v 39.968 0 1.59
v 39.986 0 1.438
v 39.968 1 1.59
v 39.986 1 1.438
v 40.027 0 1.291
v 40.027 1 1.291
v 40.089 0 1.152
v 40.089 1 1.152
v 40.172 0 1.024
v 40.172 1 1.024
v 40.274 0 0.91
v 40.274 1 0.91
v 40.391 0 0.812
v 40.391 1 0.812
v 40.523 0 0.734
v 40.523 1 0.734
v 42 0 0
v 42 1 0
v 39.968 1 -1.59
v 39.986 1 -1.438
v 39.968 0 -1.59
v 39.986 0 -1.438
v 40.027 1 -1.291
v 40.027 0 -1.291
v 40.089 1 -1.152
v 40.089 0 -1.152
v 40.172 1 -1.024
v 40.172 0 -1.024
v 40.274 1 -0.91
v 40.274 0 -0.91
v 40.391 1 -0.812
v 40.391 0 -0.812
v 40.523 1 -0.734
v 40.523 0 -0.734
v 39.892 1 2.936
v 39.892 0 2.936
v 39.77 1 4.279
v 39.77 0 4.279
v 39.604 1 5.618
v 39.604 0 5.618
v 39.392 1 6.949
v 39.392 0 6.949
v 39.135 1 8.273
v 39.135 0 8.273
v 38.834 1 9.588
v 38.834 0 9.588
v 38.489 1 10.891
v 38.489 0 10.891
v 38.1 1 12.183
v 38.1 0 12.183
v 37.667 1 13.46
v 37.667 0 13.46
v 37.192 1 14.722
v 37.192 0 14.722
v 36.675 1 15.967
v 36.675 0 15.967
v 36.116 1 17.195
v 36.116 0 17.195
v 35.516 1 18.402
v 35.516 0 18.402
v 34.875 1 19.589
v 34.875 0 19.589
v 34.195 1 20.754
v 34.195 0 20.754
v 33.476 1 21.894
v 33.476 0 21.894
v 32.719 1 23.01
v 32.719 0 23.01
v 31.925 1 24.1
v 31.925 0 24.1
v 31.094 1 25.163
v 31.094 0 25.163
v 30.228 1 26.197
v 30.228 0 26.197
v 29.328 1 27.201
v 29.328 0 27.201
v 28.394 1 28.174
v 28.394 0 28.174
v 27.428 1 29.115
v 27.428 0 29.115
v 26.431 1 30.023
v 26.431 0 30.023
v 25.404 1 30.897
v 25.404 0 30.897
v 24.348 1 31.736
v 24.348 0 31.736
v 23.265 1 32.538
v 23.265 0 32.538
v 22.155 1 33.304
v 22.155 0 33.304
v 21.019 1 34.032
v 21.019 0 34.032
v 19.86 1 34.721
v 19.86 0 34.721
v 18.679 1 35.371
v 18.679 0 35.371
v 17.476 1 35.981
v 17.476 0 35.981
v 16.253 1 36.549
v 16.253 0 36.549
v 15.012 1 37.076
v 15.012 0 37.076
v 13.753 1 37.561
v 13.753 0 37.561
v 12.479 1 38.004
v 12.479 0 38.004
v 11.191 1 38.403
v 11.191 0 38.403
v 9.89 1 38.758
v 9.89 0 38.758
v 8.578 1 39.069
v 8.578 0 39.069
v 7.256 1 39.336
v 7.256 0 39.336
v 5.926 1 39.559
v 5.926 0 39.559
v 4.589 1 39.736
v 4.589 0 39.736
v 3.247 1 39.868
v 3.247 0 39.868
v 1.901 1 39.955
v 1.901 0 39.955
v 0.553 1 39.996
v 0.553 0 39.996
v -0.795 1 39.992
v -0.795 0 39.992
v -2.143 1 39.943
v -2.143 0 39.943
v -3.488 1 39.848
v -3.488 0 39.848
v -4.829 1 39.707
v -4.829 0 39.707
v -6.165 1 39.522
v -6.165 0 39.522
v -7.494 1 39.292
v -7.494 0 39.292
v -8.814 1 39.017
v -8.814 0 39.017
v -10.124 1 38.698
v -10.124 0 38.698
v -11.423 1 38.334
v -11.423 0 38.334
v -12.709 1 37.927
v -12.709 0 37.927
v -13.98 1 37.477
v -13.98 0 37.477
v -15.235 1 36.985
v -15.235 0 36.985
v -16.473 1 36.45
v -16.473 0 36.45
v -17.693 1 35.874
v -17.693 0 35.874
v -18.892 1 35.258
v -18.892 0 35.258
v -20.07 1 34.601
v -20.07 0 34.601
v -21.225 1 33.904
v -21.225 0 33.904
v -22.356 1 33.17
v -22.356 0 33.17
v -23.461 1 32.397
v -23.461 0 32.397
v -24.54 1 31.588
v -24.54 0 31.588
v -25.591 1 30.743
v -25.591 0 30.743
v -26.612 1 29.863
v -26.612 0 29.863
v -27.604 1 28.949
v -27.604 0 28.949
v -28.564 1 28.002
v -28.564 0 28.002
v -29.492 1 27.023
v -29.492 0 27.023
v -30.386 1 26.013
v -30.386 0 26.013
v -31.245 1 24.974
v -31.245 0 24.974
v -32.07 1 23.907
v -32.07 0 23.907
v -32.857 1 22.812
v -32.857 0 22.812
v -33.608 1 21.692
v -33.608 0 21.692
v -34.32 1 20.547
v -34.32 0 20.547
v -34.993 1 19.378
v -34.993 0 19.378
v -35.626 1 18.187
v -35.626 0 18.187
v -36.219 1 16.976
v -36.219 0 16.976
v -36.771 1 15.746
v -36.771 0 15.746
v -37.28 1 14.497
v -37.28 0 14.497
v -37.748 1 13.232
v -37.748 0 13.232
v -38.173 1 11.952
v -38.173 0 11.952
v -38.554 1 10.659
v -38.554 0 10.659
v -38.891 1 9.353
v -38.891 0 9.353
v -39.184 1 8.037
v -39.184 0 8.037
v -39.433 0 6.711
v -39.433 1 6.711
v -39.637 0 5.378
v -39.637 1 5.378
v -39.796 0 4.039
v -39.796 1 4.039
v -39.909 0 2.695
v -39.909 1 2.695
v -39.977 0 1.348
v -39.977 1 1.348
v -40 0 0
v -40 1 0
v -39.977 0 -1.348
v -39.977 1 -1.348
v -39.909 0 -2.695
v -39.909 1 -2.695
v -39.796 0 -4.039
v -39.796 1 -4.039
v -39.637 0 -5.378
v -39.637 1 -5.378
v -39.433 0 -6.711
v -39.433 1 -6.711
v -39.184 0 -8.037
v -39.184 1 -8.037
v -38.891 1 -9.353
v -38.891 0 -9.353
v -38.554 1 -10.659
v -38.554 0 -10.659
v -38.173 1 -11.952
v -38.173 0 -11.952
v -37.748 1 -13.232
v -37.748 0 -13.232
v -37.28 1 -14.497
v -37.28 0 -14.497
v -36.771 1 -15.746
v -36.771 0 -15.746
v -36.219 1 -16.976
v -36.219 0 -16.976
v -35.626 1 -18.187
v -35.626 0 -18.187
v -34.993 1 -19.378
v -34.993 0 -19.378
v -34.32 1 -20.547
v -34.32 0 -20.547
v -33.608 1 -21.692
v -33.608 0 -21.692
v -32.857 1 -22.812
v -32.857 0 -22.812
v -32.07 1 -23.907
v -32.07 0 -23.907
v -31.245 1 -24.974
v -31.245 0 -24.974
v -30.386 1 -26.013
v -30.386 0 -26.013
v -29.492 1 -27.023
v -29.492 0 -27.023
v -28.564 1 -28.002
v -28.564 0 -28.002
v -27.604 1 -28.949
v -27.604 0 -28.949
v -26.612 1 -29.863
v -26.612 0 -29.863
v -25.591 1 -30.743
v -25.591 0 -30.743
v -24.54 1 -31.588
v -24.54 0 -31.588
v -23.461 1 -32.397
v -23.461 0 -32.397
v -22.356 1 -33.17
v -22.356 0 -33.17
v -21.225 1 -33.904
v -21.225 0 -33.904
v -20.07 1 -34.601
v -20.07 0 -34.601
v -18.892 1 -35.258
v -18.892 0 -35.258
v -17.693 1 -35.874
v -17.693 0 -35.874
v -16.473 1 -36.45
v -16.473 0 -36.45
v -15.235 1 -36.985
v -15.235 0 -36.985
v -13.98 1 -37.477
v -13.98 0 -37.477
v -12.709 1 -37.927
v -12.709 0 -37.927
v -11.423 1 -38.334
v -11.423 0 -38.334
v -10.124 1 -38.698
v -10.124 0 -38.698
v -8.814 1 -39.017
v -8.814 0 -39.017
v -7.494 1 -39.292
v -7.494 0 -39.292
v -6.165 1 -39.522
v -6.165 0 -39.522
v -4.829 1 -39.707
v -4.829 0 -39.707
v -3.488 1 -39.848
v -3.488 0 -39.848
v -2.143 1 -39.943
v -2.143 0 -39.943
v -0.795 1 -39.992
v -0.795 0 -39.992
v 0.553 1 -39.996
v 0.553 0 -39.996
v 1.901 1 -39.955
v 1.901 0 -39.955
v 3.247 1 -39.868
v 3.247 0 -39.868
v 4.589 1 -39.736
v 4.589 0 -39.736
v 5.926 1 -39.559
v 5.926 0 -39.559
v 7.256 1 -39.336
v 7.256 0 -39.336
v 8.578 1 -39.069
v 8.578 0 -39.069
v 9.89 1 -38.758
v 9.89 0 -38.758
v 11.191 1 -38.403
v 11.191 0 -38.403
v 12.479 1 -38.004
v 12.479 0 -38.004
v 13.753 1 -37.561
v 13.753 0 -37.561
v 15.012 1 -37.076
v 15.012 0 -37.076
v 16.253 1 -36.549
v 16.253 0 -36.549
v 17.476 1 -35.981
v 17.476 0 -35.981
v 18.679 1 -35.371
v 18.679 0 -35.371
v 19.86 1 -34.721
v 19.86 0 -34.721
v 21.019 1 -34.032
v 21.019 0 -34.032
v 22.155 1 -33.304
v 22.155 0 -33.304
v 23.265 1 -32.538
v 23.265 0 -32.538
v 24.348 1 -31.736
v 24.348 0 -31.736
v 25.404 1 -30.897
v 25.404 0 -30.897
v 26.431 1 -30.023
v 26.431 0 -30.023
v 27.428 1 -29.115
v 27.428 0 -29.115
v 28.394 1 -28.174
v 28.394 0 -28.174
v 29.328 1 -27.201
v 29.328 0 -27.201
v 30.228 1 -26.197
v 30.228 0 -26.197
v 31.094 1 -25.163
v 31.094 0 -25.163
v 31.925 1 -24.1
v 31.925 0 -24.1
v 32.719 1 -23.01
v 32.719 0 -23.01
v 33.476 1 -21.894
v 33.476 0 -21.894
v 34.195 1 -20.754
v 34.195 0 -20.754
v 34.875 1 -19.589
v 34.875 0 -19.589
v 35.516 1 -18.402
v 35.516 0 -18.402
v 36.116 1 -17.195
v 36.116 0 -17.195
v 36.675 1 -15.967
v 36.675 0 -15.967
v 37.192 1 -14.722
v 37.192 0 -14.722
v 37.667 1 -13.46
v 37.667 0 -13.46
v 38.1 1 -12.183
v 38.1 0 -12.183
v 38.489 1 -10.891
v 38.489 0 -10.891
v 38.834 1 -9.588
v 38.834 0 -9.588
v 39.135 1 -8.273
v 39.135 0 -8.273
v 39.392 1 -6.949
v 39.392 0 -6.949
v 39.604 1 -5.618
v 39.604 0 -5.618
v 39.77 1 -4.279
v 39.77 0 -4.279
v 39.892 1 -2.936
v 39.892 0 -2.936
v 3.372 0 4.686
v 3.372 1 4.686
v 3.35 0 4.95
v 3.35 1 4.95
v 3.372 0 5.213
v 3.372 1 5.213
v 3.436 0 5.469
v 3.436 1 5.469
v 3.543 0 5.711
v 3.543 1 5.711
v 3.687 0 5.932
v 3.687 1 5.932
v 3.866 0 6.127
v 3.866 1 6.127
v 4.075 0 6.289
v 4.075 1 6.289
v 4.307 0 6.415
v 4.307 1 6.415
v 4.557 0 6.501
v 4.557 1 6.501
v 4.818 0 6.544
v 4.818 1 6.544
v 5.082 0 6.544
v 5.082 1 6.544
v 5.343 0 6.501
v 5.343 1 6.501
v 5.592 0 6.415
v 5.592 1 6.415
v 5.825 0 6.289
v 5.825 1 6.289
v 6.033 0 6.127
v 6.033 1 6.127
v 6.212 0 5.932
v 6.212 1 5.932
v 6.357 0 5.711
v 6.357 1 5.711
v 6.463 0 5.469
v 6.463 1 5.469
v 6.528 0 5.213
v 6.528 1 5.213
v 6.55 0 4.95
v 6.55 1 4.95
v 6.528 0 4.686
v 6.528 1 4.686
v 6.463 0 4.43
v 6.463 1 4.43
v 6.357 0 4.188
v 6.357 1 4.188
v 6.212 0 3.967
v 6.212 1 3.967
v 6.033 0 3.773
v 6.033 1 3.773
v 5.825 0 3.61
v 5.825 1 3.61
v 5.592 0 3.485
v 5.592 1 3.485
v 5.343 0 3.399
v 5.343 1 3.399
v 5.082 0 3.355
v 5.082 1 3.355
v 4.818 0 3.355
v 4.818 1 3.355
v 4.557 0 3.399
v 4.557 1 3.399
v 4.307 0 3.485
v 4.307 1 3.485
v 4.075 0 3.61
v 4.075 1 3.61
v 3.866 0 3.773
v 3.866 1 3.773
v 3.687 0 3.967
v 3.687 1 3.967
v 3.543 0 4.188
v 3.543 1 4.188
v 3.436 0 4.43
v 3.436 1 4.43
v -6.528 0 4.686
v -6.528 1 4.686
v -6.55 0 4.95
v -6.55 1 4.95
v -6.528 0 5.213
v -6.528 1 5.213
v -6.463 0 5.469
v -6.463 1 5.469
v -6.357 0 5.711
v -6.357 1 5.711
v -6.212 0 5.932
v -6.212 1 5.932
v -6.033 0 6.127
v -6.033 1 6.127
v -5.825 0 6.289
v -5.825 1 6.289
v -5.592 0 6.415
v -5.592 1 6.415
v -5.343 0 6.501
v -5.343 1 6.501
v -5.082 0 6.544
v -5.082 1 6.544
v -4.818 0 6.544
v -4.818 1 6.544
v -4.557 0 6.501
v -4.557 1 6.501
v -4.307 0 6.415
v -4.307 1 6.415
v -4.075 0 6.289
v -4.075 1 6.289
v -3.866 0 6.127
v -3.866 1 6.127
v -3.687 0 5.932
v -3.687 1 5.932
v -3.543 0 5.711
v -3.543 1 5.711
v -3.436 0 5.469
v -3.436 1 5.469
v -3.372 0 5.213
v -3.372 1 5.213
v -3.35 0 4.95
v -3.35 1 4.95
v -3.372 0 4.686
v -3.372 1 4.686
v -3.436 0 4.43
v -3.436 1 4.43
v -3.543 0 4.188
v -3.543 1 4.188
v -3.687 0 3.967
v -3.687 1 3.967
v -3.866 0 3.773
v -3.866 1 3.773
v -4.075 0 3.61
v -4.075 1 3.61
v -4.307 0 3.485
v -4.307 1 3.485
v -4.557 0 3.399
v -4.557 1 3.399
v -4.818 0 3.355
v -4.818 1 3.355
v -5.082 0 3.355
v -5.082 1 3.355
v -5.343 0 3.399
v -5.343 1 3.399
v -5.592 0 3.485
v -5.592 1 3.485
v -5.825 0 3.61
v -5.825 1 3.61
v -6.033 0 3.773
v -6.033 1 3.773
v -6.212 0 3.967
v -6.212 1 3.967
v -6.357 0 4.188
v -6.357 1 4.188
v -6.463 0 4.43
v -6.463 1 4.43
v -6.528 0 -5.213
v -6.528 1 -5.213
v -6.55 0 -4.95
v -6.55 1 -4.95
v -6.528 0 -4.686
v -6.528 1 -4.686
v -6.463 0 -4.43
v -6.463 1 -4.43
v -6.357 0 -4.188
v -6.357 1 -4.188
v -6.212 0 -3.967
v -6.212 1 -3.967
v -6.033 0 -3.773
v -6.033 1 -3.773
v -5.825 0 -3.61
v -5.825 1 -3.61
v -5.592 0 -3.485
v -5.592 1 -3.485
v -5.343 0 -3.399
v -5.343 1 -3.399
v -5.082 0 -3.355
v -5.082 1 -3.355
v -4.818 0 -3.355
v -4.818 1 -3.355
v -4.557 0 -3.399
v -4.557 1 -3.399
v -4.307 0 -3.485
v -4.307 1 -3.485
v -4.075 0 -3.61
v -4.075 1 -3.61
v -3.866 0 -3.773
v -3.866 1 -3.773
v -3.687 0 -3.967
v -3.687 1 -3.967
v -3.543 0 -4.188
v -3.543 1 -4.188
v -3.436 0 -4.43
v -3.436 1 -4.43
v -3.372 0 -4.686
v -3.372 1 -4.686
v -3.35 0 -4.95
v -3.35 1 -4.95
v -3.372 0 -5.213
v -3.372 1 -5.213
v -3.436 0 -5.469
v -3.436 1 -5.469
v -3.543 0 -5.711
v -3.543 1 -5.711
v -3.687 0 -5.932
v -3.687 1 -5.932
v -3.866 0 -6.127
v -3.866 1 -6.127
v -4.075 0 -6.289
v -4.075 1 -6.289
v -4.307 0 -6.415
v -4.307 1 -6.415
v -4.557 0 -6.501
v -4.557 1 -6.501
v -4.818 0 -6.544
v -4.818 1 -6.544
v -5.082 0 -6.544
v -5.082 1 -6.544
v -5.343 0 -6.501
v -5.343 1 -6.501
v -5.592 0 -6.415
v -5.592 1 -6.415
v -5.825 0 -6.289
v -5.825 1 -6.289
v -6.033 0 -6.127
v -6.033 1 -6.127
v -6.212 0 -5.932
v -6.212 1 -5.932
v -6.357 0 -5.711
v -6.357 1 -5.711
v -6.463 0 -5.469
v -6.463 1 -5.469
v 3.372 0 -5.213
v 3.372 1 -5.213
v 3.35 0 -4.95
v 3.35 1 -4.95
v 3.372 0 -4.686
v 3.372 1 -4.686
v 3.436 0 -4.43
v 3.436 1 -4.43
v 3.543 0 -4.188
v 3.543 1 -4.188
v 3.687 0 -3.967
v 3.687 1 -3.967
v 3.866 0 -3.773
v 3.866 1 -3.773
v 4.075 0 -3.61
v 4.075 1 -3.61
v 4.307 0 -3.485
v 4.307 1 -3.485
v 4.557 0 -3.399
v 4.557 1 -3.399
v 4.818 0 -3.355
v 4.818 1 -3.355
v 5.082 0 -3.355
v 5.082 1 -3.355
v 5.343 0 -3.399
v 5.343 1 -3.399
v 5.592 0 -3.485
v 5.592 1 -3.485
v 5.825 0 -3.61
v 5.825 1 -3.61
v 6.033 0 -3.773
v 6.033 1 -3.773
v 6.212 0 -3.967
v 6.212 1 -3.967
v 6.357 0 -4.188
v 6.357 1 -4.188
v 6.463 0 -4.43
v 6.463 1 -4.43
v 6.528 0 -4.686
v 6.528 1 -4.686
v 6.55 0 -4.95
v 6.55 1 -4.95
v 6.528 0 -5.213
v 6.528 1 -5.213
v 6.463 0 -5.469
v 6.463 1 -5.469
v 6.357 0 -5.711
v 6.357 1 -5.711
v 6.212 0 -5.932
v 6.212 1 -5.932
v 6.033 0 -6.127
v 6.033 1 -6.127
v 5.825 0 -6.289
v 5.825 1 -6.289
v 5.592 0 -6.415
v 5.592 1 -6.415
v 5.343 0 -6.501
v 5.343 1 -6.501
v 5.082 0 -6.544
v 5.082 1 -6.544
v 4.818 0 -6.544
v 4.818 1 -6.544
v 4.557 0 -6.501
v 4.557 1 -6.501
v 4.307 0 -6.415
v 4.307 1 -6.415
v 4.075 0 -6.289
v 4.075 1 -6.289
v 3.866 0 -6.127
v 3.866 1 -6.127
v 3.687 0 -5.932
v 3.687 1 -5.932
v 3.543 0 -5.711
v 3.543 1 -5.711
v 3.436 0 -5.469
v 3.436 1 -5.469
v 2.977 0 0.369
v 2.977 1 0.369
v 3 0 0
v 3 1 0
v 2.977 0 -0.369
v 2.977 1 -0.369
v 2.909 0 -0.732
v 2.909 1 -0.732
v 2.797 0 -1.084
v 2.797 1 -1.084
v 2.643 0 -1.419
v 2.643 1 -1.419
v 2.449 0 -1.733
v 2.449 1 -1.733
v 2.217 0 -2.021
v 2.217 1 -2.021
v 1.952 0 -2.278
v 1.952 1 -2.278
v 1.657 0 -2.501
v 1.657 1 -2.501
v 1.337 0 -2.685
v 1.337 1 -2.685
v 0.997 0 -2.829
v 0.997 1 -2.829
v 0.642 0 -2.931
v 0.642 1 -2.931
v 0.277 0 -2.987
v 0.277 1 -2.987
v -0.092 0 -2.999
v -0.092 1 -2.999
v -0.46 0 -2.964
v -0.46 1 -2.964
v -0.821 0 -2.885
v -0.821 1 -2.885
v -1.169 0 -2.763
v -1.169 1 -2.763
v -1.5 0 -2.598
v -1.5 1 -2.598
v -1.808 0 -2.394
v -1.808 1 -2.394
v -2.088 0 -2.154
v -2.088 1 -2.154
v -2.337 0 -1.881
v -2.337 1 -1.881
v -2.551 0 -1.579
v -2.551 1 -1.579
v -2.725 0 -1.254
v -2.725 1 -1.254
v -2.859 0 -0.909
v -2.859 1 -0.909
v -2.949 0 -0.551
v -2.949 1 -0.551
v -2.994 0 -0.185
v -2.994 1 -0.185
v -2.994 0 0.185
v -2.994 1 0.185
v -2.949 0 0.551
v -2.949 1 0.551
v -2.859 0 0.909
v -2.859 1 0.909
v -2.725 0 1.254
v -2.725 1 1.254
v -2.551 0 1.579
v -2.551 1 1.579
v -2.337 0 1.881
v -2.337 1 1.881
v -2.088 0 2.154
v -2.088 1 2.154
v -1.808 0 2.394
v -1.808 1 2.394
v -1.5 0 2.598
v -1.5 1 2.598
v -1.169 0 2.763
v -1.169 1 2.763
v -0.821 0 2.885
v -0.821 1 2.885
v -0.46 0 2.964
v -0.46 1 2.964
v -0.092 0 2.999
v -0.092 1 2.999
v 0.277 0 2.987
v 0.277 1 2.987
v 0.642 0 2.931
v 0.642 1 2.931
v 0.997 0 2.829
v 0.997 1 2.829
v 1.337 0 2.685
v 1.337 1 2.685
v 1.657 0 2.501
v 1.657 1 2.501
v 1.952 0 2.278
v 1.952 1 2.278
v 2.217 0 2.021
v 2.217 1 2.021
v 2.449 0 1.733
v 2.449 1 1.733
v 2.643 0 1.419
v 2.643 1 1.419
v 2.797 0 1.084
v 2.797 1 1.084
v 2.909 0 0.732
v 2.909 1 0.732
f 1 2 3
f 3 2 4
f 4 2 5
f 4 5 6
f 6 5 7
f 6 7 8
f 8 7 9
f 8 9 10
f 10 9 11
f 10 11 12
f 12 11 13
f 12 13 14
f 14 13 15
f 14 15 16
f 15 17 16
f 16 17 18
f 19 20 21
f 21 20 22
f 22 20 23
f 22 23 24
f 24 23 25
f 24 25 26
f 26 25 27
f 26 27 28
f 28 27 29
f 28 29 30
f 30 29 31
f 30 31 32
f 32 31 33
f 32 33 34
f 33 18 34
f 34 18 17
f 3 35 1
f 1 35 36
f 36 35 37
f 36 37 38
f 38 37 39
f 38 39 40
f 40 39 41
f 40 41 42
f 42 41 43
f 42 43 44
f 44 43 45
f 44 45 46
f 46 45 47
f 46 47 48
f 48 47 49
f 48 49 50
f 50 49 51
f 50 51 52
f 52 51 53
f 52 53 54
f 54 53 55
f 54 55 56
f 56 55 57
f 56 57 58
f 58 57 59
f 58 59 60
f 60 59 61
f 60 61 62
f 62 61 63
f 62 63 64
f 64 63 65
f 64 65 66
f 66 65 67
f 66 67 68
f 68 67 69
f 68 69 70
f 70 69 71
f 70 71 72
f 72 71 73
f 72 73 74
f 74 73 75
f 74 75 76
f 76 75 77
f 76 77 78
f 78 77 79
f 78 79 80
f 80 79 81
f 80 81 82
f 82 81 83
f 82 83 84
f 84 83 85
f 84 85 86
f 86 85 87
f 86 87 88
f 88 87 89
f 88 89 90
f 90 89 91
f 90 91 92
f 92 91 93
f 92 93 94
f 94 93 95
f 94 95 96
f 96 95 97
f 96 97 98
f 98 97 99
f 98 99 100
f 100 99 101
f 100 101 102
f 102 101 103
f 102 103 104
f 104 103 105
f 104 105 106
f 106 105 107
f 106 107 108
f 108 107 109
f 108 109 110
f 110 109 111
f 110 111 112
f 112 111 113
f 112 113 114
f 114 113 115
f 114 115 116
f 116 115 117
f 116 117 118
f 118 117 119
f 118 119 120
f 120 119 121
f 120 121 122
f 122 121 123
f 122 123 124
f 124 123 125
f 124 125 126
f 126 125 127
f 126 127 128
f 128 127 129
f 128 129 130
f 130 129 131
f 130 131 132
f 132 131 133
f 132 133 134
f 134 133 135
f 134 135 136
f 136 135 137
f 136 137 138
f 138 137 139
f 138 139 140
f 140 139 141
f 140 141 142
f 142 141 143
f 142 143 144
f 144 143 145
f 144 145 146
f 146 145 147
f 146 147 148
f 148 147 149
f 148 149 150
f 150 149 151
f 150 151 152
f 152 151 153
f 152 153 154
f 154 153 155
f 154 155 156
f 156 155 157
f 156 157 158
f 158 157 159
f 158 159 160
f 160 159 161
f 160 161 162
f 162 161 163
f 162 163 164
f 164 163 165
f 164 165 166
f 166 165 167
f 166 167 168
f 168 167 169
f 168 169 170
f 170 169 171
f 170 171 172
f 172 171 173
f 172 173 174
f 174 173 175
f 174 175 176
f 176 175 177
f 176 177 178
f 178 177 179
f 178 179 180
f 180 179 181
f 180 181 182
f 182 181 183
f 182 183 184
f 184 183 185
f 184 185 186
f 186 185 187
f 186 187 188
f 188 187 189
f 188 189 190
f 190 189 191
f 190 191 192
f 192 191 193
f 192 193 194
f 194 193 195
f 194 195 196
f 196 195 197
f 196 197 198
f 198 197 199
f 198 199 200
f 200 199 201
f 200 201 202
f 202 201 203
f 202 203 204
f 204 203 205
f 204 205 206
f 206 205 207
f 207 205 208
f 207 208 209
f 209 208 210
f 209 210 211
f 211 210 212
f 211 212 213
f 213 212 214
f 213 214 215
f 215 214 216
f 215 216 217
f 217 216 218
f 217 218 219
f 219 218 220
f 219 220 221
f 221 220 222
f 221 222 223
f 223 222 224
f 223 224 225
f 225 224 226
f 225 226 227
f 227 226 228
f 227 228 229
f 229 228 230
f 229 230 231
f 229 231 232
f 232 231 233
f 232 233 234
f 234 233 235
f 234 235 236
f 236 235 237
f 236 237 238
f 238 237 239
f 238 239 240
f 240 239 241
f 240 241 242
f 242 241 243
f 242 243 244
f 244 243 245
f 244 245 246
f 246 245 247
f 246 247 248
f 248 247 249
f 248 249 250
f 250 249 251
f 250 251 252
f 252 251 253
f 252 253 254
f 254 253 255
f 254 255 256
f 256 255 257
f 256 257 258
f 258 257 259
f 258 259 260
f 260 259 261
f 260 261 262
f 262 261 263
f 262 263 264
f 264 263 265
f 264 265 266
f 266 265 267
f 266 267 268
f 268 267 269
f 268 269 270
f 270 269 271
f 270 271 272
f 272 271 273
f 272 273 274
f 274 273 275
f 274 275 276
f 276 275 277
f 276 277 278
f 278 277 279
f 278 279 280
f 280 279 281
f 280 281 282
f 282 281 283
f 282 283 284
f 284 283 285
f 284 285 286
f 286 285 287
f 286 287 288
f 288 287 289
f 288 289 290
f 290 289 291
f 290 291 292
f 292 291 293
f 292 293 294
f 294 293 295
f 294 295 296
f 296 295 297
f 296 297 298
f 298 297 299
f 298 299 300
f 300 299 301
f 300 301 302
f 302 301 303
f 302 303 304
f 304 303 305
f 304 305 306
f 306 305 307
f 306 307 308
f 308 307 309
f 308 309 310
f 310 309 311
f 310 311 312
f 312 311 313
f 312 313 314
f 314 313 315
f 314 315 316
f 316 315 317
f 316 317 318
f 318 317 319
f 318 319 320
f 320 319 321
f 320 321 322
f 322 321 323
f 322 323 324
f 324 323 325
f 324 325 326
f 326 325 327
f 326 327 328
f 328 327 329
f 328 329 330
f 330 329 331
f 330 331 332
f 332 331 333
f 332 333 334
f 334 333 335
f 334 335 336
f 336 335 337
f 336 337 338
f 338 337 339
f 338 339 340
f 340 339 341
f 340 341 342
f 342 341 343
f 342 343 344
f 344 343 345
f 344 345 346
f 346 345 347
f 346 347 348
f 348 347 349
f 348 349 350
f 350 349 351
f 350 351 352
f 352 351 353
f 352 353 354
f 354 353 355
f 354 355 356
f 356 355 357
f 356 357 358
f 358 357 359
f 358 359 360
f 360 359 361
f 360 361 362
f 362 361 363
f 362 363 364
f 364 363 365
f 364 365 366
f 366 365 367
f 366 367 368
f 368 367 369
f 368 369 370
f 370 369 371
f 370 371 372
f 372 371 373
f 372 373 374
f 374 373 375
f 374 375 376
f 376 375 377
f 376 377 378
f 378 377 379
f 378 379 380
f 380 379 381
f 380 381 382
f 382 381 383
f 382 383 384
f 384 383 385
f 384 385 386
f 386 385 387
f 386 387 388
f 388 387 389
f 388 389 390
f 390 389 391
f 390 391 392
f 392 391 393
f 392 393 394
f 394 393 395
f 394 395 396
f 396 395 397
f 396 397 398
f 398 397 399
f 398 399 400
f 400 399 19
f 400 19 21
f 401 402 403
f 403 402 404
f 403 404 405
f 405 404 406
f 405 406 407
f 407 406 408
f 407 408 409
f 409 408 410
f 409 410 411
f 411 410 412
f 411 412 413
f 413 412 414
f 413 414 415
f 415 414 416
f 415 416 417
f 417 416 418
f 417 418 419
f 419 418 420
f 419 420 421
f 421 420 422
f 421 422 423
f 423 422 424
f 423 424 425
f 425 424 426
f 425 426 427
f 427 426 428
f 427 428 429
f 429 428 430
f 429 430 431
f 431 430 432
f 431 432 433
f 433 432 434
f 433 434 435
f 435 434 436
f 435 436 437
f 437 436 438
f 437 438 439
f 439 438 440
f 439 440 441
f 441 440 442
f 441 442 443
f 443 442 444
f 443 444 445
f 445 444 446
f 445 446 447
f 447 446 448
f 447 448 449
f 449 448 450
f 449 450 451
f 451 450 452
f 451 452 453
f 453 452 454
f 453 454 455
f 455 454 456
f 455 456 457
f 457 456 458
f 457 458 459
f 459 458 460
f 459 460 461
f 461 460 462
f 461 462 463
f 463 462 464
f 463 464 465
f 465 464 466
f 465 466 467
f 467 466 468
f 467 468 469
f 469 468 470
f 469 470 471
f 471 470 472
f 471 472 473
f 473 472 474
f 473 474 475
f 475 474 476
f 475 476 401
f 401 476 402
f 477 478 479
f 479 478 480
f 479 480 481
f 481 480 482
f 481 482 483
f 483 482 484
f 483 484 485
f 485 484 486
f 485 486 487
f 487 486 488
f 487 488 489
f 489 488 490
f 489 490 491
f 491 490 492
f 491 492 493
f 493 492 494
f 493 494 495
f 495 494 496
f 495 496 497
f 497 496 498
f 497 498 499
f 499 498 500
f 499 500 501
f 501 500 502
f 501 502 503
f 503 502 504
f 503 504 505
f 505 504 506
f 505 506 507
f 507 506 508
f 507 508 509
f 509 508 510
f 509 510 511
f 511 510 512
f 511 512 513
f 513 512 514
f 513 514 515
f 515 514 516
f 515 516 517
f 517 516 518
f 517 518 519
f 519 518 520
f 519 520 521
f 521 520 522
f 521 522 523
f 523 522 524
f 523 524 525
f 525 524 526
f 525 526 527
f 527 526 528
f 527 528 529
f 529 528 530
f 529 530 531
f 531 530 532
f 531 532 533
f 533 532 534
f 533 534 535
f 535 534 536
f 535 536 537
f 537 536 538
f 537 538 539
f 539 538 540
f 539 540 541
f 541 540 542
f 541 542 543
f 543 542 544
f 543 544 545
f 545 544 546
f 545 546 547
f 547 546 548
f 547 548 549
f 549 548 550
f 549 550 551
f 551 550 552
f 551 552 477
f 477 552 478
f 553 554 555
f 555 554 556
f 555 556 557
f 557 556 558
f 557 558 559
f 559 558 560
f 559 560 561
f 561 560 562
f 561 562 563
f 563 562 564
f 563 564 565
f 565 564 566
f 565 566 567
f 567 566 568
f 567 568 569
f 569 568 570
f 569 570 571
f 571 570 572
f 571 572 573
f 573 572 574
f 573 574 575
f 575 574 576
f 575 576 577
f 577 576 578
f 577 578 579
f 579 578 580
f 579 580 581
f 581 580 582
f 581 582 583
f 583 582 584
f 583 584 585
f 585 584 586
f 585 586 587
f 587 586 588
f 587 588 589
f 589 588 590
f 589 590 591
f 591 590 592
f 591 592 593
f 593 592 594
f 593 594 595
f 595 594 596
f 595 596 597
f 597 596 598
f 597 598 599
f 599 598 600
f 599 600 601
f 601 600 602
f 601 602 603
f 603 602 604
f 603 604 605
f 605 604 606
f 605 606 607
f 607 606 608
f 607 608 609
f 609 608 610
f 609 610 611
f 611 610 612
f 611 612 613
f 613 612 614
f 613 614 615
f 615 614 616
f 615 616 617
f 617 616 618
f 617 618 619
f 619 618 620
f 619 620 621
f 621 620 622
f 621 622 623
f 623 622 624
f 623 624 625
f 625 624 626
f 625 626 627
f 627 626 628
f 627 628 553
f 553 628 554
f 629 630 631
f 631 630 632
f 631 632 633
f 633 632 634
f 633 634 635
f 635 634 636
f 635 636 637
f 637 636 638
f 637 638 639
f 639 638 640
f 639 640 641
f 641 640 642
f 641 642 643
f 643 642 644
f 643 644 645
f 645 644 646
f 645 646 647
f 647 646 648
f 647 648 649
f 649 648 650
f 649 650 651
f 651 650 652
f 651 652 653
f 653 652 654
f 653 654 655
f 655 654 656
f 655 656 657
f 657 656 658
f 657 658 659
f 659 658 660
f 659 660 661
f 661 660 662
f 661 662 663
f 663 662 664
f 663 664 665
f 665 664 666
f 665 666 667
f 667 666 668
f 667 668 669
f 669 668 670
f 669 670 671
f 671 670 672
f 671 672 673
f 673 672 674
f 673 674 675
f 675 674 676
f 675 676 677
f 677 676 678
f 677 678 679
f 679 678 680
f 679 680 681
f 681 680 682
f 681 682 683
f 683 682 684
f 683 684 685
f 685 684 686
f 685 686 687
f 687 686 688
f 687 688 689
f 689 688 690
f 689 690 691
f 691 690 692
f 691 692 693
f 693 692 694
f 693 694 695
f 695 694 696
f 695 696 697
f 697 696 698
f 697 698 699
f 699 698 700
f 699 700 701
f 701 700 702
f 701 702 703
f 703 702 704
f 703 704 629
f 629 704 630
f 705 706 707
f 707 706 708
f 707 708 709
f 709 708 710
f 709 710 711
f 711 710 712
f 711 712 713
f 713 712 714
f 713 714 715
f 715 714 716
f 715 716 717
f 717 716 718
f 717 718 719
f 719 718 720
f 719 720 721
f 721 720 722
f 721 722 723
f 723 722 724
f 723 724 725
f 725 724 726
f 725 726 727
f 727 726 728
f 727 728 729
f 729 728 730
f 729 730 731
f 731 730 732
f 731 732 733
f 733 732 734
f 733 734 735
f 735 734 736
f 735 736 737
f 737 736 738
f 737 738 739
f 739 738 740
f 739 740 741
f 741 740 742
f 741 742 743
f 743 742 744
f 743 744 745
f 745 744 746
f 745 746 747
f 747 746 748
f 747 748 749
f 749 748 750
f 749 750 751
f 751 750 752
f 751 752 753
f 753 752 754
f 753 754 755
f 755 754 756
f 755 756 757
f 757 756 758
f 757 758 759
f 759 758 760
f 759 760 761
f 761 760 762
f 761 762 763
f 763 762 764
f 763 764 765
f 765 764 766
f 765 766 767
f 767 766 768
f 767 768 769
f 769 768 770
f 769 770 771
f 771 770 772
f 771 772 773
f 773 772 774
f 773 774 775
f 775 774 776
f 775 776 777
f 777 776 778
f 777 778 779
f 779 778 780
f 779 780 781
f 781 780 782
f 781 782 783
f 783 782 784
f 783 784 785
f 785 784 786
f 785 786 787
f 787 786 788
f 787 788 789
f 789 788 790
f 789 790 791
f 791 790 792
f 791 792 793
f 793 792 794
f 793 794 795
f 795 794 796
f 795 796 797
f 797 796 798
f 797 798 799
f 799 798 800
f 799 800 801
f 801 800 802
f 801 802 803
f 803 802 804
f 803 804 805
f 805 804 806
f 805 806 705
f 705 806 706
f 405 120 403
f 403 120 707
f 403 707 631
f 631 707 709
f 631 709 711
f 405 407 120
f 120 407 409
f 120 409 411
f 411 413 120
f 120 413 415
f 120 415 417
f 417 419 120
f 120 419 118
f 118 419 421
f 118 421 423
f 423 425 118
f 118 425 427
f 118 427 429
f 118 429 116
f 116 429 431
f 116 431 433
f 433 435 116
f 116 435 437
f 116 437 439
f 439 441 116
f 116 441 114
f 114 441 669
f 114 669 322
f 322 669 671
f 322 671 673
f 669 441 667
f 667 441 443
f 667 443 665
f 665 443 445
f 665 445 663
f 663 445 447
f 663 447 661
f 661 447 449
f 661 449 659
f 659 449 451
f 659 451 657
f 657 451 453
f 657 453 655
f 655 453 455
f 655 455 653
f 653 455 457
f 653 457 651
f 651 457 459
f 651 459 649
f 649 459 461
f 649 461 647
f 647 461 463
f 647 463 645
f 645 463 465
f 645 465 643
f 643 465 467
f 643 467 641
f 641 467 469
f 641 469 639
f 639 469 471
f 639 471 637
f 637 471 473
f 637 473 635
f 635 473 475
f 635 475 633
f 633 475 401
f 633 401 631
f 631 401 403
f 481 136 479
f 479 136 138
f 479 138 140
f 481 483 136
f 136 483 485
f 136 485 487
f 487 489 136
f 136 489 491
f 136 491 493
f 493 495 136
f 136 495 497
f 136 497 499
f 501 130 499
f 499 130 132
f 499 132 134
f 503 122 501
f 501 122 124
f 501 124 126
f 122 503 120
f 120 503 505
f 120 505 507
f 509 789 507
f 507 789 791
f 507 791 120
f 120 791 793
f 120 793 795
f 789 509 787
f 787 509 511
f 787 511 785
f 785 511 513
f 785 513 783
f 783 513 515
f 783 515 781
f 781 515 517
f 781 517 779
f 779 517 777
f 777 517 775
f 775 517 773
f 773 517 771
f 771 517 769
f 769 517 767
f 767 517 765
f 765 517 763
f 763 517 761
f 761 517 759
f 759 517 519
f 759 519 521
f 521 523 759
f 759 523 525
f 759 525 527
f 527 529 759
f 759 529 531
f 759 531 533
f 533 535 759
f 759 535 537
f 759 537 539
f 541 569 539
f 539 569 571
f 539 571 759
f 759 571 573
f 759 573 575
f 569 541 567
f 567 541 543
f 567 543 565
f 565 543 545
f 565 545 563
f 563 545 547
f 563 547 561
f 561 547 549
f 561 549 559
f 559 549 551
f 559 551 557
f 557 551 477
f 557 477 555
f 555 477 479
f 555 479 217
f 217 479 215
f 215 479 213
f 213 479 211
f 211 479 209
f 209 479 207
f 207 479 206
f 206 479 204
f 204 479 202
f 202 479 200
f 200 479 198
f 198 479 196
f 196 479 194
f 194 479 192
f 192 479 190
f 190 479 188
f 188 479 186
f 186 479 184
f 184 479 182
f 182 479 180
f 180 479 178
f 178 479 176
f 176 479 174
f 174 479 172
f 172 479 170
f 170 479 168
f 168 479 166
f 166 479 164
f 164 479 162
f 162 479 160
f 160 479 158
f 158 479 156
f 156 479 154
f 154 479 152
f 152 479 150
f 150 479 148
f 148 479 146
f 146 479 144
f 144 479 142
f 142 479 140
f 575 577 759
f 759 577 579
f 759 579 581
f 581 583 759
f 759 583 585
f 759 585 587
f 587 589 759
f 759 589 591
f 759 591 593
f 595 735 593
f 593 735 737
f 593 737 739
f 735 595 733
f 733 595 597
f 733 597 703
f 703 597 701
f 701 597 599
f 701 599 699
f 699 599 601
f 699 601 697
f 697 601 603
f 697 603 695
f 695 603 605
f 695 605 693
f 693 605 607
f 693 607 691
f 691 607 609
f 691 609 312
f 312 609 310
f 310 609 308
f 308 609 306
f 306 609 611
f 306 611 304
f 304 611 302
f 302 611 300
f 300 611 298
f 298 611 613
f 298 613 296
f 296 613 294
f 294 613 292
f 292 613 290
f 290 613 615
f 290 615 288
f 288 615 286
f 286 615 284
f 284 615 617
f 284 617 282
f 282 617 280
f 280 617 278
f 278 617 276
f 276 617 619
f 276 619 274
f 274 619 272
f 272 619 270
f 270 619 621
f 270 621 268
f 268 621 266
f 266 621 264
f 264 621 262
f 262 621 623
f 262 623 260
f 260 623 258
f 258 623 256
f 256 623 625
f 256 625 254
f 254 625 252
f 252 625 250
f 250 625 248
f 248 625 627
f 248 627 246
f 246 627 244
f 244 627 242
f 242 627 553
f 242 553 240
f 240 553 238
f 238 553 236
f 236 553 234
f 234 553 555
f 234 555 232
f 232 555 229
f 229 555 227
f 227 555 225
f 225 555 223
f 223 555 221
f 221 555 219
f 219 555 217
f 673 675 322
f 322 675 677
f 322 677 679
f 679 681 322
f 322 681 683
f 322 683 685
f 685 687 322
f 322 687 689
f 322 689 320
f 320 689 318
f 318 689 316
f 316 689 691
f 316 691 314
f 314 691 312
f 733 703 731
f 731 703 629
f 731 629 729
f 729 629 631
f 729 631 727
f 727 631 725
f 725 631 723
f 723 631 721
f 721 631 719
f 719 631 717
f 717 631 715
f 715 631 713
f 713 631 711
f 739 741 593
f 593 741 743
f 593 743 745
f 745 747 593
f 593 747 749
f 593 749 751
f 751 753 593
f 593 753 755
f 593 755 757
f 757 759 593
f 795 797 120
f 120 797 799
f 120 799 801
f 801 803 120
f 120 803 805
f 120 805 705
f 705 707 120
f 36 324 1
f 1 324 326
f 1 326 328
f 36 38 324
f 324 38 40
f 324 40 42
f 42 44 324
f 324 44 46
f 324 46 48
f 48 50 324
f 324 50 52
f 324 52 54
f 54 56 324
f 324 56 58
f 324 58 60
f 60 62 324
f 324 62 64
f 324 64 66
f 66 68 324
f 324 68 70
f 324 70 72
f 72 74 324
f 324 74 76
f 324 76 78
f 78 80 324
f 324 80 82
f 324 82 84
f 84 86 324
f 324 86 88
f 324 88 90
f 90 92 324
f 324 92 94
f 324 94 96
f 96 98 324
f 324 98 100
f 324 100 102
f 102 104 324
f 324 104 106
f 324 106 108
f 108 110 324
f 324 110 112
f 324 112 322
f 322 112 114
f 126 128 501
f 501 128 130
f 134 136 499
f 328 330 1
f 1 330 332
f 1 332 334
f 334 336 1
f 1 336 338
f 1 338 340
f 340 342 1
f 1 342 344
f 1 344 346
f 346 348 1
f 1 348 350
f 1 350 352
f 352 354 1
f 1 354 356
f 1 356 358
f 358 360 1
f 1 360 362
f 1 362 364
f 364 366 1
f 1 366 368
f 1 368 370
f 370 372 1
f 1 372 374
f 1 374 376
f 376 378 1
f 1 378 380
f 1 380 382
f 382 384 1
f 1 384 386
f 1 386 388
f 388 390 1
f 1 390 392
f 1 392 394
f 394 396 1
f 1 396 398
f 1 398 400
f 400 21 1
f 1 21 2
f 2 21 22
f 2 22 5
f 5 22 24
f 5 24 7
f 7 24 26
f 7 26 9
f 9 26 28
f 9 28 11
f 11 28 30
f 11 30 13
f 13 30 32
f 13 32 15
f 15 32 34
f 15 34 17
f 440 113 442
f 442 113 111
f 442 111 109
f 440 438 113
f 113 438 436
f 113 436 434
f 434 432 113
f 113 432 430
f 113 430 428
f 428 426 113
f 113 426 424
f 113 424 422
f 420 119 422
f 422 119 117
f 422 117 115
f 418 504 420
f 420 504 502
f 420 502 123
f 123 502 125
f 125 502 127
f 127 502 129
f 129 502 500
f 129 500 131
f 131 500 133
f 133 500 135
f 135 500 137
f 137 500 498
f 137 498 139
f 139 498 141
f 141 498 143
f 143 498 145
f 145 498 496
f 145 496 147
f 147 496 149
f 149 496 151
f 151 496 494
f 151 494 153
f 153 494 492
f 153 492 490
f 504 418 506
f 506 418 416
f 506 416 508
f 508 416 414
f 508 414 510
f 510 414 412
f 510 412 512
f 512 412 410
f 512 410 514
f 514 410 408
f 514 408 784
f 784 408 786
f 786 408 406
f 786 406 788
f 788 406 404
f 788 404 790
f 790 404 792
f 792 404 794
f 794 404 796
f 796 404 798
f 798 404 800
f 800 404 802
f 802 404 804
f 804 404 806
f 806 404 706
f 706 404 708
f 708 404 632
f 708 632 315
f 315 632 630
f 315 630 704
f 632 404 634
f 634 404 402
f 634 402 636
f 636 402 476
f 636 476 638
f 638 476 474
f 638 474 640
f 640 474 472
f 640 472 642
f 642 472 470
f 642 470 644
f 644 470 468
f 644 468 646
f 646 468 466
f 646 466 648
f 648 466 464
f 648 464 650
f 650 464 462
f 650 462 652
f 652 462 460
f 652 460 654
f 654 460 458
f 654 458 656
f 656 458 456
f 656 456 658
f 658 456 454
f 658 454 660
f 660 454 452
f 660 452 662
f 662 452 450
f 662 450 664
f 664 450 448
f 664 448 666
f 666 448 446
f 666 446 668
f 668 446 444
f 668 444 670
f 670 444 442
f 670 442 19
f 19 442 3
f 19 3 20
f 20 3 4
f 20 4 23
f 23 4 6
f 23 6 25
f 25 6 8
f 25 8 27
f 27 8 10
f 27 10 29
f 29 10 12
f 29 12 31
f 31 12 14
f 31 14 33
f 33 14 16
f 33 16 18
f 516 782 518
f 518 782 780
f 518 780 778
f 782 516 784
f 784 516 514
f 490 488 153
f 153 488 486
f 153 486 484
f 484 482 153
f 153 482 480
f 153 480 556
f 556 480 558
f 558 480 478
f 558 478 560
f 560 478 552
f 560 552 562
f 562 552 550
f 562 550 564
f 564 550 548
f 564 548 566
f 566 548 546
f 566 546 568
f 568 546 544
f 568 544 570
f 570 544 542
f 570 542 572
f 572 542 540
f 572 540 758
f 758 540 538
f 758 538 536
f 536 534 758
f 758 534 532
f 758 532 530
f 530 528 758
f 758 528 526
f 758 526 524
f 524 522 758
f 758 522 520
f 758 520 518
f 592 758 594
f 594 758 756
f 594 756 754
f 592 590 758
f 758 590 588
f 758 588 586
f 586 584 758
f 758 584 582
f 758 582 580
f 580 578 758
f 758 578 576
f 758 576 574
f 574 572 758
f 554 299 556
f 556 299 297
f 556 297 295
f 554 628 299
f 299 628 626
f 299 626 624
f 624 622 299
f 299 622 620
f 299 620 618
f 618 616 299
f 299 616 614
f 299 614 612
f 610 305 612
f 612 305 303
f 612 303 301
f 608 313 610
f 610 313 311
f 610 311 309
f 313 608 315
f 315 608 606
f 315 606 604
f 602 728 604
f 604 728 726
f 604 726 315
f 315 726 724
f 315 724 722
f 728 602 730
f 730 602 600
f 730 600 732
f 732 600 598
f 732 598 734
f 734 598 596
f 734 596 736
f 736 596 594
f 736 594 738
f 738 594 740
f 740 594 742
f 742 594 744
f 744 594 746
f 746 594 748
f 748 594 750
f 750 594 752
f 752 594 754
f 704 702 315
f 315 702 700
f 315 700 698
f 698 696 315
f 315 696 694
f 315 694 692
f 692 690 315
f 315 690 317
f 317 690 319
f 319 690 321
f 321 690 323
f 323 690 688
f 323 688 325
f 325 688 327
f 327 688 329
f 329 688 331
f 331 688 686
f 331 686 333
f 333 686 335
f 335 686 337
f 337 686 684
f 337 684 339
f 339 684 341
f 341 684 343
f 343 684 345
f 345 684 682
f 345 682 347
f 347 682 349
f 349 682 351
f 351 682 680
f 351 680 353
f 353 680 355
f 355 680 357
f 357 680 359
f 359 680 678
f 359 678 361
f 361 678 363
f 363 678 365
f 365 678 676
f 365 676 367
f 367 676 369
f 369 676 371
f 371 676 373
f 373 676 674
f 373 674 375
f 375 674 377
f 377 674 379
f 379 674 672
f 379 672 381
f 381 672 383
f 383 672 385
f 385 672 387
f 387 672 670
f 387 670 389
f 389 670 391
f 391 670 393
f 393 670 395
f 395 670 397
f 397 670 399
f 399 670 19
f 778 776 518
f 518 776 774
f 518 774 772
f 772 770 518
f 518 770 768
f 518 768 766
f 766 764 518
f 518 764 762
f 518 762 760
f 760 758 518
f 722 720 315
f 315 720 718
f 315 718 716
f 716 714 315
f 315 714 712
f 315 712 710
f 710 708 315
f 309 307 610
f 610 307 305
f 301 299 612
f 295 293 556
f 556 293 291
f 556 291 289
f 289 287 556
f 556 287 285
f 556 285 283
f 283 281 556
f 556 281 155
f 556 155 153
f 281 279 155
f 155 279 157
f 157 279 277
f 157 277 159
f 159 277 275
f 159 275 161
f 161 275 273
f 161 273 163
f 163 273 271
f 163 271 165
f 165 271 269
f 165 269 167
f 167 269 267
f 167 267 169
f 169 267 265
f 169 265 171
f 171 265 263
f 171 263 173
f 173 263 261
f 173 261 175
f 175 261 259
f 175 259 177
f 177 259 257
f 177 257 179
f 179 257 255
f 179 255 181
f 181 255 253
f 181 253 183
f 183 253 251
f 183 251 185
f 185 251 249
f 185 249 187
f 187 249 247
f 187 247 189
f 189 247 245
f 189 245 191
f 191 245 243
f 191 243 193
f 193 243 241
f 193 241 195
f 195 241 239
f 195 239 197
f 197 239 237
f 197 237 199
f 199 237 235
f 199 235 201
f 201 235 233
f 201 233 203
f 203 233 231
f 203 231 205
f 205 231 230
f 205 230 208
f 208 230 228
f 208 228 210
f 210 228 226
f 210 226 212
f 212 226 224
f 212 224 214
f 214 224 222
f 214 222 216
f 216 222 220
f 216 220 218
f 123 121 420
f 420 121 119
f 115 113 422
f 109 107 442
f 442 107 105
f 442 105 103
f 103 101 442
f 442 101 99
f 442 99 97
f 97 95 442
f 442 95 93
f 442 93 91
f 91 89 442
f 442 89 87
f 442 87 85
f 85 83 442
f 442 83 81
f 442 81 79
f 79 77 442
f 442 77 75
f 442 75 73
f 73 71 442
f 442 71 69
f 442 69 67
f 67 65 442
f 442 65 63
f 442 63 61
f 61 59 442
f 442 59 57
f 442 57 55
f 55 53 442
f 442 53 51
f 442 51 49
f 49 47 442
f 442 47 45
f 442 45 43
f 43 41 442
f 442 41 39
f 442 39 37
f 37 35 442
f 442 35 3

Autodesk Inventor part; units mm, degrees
ref_plane "YZ Plane" through (0, 0, 0) normal (1, 0, 0) x (0, 1, 0)
ref_plane "XZ Plane" through (0, 0, 0) normal (0, 1, 0) x (-1, 0, 0)
ref_plane "XY Plane" through (0, 0, 0) normal (0, 0, 1) x (1, 0, 0)
sketch "Sketch1" plane through (0, 0, 0) normal (0, 1, 0) x (-1, 0, 0)
  circle A0 centre (0, 0) radius 40
  dimension "d2" = 80
extrude "Extrusion1" add sketch "Sketch1" along normal blind 1
sketch "Sketch2" plane through (0, 1, 0) normal (0, 1, 0) x (1, 0, 0)
  circle A0 centre (0, 0) radius 3
  dimension "d3" = 6
extrude "Extrusion2" cut sketch "Sketch2" against normal through all
sketch "Sketch3" plane through (0, 1, 0) normal (0, 1, 0) x (1, 0, 0)
  line L0 (4.9497, 4.9497) -> (-4.9497, 4.9497)
  line L1 (-4.9497, 4.9497) -> (-4.9497, -4.9497)
  line L2 (-4.9497, -4.9497) -> (4.9497, -4.9497)
  line L3 (4.9497, -4.9497) -> (4.9497, 4.9497)
  circle A0 centre (0, 0) radius 3 projected
  line L4 (4.9497, 4.9497) -> (-4.9497, -4.9497) construction
  line L5 (-4.9497, 4.9497) -> (4.9497, -4.9497) construction
  dimension "d6" = 14
  dimension "d7" = 14
  dimension "d8" = 9.8995
  dimension "d9" = 9.8995
hole "Hole1" at (-4.9497, 1, 4.9497) at (-4.9497, 1, -4.9497) at (4.9497, 1, 4.9497) at (4.9497, 1, -4.9497) direction (0, -1, 0) diameter 3.2 end through all clearance for "Flat Head Machine Screw" size "M3" standard "Ansi Metric M Profile"
sketch "Sketch4" plane through (0, 0, 0) normal (0, -1, 0) x (1, 0, 0)
  circle A0 centre (4.9497, 4.9497) radius 1.6 projected
  circle A1 centre (-4.9497, 4.9497) radius 1.6 projected
  circle A2 centre (-4.9497, -4.9497) radius 1.6 projected
  circle A3 centre (4.9497, -4.9497) radius 1.6 projected
  circle A4 centre (0, 0) radius 3 projected
  circle A5 centre (0, 0) radius 40 projected
  circle A6 centre (0, 0) radius 40 projected
  line L0 (39.9875, 1) -> (42, 0)
  line L1 (42, 0) -> (39.9875, -1)
  dimension "d18" = 1
  dimension "d19" = 1
  dimension "d20" = 42
extrude "Extrusion3" add sketch "Sketch4" against normal blind 1 contours A5 L0 L1
fillet "Fillet1" radius 1 2 edges at (39.9875, 0.5, -1) (39.9875, 0.5, 1)
equation "\"d8\" = d9"
equation "\"d19\" = d18"
properties part number "IndPlate"
